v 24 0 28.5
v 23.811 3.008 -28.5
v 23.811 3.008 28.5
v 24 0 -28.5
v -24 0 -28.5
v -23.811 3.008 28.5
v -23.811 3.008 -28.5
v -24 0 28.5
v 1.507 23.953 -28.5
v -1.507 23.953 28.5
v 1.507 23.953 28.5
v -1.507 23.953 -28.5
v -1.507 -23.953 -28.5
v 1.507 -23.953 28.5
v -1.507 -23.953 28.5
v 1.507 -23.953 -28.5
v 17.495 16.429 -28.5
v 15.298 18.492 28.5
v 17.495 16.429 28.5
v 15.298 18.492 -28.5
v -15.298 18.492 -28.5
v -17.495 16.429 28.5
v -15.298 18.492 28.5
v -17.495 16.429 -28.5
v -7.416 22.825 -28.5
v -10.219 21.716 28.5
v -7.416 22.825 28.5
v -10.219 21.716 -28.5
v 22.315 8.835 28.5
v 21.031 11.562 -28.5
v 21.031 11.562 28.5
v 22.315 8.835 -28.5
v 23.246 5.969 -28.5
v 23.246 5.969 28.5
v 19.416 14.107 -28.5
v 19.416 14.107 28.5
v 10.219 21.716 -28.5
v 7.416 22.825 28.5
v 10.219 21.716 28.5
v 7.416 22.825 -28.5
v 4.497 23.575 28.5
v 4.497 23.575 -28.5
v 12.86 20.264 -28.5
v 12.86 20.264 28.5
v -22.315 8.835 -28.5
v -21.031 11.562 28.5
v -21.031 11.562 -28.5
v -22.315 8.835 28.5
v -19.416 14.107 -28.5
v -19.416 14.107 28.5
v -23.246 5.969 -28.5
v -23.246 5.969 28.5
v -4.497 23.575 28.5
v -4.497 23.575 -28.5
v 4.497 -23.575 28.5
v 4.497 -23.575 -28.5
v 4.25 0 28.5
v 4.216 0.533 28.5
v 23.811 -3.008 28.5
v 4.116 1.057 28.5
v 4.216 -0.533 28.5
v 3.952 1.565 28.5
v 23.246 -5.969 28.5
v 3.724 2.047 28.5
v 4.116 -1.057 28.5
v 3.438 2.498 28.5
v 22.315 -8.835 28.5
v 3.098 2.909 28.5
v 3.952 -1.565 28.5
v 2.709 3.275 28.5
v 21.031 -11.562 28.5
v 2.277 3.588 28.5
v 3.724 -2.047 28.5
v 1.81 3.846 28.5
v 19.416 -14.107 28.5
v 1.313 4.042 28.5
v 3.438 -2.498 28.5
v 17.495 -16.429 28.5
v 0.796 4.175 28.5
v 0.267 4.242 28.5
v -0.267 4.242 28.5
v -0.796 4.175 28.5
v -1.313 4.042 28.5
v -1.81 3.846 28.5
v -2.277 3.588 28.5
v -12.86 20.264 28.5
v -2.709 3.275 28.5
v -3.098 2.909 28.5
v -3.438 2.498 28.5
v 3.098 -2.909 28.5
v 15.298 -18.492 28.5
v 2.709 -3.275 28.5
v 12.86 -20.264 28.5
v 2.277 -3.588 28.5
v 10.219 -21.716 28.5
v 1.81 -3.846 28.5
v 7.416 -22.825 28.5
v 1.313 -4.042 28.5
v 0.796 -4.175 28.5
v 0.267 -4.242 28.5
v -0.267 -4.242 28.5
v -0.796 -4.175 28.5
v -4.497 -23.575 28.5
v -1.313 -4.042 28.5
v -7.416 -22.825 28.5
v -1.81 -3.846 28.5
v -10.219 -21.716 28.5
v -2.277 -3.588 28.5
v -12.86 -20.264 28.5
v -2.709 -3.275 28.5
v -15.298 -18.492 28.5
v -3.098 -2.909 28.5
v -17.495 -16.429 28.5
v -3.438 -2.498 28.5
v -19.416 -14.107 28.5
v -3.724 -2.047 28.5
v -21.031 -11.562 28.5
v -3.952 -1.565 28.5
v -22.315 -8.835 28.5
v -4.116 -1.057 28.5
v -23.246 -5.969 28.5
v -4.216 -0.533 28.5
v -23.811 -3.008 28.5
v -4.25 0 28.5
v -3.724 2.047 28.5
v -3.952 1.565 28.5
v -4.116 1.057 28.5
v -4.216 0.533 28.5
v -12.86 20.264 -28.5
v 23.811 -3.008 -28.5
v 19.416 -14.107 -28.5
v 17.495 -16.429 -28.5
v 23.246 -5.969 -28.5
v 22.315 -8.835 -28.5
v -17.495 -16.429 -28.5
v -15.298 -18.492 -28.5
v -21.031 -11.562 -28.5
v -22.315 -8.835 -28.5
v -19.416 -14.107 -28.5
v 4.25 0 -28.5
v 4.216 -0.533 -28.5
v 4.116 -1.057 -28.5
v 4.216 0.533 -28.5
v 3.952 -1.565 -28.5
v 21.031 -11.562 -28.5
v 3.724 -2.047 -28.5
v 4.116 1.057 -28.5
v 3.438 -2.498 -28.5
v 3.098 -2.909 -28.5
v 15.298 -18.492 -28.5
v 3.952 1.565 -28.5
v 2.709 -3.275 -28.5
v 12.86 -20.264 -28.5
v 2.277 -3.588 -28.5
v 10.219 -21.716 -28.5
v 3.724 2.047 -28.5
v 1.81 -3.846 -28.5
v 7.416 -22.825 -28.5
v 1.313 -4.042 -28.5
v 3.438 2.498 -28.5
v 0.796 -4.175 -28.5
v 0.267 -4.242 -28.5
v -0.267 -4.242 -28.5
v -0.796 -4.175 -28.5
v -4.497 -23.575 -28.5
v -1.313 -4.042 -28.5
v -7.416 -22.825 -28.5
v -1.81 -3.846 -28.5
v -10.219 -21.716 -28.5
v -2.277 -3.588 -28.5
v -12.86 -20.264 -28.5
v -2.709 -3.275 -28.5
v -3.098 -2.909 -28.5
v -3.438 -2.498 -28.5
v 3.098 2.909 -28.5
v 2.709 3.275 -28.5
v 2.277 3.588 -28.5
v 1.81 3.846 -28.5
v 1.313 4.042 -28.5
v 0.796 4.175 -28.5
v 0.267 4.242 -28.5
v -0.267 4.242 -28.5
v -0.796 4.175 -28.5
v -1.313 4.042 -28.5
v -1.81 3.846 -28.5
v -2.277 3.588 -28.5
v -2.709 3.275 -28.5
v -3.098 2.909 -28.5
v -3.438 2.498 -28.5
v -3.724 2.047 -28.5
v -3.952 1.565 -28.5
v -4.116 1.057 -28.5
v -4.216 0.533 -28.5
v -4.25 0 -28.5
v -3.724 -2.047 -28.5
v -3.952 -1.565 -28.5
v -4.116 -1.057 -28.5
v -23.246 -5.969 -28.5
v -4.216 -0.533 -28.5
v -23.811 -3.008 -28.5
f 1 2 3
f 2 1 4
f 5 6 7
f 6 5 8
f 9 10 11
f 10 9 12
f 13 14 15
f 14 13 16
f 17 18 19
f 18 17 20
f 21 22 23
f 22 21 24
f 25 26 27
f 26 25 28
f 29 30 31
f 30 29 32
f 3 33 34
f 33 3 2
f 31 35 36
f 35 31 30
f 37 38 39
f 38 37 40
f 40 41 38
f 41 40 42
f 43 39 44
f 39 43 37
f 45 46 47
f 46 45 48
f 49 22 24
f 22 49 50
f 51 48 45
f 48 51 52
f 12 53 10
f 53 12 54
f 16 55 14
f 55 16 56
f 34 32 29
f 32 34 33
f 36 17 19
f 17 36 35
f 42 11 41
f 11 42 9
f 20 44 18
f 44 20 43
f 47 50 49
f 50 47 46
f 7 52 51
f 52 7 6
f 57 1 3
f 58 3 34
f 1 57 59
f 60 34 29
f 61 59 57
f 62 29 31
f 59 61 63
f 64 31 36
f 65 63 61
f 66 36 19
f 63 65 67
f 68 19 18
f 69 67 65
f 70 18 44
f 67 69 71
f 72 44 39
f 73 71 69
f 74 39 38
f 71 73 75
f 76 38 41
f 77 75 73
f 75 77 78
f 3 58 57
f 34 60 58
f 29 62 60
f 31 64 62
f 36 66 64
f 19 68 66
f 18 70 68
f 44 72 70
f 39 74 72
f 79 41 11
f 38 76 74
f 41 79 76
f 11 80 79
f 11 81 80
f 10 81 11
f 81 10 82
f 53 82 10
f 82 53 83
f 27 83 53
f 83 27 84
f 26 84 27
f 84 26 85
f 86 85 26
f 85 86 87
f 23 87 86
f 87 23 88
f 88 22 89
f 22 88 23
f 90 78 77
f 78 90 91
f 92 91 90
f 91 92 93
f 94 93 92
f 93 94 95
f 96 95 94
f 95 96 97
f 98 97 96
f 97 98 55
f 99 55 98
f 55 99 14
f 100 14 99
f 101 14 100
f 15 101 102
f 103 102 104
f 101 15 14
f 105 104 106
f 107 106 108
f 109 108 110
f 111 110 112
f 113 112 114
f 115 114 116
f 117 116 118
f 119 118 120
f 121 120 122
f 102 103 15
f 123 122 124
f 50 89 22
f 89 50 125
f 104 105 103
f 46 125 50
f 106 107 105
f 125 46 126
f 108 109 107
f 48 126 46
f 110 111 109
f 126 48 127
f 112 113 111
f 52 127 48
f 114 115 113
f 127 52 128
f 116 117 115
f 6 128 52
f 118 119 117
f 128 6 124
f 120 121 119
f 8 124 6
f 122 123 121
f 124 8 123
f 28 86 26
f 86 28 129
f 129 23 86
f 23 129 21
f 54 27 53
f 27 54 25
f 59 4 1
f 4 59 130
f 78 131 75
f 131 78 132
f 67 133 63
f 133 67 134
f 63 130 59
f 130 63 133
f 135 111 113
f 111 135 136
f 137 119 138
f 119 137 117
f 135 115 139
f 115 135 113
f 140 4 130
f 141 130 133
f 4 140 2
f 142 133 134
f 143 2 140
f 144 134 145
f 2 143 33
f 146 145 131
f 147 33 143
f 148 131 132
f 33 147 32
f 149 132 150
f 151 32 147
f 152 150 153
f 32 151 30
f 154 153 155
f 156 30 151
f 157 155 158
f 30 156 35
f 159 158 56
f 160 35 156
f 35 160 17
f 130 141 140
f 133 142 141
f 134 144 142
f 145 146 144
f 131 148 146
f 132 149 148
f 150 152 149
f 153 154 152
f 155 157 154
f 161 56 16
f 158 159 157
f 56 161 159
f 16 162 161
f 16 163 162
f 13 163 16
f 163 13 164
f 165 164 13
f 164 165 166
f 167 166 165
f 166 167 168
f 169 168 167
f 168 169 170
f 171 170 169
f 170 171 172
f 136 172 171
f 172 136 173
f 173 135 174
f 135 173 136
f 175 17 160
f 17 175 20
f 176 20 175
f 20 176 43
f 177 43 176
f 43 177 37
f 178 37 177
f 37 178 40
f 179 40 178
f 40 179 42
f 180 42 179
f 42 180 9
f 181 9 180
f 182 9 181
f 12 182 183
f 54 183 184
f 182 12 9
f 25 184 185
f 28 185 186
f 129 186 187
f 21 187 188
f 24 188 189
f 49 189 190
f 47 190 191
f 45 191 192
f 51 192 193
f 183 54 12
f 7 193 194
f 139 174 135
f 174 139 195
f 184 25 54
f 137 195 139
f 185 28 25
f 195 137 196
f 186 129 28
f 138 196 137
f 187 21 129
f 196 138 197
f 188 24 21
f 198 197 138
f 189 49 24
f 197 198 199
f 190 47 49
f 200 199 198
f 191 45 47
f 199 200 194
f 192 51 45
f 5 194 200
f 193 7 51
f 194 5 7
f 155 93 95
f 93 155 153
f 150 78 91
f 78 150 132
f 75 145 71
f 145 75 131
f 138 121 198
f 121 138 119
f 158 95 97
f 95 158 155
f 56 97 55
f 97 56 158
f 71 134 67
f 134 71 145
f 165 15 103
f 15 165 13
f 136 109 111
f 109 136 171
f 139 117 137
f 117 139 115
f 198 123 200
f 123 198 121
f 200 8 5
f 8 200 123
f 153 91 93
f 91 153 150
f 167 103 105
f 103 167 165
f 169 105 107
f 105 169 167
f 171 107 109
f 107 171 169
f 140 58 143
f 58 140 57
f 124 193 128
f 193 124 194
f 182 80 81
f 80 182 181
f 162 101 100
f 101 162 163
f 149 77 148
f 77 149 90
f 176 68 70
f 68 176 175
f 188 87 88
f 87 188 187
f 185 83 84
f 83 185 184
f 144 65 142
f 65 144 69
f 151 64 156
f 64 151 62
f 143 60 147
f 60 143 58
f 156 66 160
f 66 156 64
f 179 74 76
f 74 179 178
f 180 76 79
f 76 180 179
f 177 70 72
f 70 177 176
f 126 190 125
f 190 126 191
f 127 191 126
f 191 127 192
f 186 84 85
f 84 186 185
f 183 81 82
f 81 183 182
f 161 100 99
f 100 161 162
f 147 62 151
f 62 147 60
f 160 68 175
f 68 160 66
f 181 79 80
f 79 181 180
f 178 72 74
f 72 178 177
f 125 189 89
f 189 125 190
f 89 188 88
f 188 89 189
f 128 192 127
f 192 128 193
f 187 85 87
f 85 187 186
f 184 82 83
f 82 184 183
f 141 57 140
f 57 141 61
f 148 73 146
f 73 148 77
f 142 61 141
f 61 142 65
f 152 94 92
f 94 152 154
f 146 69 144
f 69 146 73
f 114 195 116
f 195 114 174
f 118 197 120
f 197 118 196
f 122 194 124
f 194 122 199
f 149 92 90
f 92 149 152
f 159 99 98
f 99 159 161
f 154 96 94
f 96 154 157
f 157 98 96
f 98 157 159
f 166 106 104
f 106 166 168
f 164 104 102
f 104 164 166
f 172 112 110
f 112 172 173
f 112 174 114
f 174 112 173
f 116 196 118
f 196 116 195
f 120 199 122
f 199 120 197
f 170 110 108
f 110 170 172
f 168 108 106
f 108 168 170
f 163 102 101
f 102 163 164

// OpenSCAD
$fn = 50;


difference() {
	union() {
		translate(v = [0, 0, -28.5000000000]) {
			cylinder(h = 57, r = 24.0000000000);
		}
	}
	union() {
		translate(v = [0, 0, -100.0000000000]) {
			cylinder(h = 200, r = 4.2500000000);
		}
	}
}
